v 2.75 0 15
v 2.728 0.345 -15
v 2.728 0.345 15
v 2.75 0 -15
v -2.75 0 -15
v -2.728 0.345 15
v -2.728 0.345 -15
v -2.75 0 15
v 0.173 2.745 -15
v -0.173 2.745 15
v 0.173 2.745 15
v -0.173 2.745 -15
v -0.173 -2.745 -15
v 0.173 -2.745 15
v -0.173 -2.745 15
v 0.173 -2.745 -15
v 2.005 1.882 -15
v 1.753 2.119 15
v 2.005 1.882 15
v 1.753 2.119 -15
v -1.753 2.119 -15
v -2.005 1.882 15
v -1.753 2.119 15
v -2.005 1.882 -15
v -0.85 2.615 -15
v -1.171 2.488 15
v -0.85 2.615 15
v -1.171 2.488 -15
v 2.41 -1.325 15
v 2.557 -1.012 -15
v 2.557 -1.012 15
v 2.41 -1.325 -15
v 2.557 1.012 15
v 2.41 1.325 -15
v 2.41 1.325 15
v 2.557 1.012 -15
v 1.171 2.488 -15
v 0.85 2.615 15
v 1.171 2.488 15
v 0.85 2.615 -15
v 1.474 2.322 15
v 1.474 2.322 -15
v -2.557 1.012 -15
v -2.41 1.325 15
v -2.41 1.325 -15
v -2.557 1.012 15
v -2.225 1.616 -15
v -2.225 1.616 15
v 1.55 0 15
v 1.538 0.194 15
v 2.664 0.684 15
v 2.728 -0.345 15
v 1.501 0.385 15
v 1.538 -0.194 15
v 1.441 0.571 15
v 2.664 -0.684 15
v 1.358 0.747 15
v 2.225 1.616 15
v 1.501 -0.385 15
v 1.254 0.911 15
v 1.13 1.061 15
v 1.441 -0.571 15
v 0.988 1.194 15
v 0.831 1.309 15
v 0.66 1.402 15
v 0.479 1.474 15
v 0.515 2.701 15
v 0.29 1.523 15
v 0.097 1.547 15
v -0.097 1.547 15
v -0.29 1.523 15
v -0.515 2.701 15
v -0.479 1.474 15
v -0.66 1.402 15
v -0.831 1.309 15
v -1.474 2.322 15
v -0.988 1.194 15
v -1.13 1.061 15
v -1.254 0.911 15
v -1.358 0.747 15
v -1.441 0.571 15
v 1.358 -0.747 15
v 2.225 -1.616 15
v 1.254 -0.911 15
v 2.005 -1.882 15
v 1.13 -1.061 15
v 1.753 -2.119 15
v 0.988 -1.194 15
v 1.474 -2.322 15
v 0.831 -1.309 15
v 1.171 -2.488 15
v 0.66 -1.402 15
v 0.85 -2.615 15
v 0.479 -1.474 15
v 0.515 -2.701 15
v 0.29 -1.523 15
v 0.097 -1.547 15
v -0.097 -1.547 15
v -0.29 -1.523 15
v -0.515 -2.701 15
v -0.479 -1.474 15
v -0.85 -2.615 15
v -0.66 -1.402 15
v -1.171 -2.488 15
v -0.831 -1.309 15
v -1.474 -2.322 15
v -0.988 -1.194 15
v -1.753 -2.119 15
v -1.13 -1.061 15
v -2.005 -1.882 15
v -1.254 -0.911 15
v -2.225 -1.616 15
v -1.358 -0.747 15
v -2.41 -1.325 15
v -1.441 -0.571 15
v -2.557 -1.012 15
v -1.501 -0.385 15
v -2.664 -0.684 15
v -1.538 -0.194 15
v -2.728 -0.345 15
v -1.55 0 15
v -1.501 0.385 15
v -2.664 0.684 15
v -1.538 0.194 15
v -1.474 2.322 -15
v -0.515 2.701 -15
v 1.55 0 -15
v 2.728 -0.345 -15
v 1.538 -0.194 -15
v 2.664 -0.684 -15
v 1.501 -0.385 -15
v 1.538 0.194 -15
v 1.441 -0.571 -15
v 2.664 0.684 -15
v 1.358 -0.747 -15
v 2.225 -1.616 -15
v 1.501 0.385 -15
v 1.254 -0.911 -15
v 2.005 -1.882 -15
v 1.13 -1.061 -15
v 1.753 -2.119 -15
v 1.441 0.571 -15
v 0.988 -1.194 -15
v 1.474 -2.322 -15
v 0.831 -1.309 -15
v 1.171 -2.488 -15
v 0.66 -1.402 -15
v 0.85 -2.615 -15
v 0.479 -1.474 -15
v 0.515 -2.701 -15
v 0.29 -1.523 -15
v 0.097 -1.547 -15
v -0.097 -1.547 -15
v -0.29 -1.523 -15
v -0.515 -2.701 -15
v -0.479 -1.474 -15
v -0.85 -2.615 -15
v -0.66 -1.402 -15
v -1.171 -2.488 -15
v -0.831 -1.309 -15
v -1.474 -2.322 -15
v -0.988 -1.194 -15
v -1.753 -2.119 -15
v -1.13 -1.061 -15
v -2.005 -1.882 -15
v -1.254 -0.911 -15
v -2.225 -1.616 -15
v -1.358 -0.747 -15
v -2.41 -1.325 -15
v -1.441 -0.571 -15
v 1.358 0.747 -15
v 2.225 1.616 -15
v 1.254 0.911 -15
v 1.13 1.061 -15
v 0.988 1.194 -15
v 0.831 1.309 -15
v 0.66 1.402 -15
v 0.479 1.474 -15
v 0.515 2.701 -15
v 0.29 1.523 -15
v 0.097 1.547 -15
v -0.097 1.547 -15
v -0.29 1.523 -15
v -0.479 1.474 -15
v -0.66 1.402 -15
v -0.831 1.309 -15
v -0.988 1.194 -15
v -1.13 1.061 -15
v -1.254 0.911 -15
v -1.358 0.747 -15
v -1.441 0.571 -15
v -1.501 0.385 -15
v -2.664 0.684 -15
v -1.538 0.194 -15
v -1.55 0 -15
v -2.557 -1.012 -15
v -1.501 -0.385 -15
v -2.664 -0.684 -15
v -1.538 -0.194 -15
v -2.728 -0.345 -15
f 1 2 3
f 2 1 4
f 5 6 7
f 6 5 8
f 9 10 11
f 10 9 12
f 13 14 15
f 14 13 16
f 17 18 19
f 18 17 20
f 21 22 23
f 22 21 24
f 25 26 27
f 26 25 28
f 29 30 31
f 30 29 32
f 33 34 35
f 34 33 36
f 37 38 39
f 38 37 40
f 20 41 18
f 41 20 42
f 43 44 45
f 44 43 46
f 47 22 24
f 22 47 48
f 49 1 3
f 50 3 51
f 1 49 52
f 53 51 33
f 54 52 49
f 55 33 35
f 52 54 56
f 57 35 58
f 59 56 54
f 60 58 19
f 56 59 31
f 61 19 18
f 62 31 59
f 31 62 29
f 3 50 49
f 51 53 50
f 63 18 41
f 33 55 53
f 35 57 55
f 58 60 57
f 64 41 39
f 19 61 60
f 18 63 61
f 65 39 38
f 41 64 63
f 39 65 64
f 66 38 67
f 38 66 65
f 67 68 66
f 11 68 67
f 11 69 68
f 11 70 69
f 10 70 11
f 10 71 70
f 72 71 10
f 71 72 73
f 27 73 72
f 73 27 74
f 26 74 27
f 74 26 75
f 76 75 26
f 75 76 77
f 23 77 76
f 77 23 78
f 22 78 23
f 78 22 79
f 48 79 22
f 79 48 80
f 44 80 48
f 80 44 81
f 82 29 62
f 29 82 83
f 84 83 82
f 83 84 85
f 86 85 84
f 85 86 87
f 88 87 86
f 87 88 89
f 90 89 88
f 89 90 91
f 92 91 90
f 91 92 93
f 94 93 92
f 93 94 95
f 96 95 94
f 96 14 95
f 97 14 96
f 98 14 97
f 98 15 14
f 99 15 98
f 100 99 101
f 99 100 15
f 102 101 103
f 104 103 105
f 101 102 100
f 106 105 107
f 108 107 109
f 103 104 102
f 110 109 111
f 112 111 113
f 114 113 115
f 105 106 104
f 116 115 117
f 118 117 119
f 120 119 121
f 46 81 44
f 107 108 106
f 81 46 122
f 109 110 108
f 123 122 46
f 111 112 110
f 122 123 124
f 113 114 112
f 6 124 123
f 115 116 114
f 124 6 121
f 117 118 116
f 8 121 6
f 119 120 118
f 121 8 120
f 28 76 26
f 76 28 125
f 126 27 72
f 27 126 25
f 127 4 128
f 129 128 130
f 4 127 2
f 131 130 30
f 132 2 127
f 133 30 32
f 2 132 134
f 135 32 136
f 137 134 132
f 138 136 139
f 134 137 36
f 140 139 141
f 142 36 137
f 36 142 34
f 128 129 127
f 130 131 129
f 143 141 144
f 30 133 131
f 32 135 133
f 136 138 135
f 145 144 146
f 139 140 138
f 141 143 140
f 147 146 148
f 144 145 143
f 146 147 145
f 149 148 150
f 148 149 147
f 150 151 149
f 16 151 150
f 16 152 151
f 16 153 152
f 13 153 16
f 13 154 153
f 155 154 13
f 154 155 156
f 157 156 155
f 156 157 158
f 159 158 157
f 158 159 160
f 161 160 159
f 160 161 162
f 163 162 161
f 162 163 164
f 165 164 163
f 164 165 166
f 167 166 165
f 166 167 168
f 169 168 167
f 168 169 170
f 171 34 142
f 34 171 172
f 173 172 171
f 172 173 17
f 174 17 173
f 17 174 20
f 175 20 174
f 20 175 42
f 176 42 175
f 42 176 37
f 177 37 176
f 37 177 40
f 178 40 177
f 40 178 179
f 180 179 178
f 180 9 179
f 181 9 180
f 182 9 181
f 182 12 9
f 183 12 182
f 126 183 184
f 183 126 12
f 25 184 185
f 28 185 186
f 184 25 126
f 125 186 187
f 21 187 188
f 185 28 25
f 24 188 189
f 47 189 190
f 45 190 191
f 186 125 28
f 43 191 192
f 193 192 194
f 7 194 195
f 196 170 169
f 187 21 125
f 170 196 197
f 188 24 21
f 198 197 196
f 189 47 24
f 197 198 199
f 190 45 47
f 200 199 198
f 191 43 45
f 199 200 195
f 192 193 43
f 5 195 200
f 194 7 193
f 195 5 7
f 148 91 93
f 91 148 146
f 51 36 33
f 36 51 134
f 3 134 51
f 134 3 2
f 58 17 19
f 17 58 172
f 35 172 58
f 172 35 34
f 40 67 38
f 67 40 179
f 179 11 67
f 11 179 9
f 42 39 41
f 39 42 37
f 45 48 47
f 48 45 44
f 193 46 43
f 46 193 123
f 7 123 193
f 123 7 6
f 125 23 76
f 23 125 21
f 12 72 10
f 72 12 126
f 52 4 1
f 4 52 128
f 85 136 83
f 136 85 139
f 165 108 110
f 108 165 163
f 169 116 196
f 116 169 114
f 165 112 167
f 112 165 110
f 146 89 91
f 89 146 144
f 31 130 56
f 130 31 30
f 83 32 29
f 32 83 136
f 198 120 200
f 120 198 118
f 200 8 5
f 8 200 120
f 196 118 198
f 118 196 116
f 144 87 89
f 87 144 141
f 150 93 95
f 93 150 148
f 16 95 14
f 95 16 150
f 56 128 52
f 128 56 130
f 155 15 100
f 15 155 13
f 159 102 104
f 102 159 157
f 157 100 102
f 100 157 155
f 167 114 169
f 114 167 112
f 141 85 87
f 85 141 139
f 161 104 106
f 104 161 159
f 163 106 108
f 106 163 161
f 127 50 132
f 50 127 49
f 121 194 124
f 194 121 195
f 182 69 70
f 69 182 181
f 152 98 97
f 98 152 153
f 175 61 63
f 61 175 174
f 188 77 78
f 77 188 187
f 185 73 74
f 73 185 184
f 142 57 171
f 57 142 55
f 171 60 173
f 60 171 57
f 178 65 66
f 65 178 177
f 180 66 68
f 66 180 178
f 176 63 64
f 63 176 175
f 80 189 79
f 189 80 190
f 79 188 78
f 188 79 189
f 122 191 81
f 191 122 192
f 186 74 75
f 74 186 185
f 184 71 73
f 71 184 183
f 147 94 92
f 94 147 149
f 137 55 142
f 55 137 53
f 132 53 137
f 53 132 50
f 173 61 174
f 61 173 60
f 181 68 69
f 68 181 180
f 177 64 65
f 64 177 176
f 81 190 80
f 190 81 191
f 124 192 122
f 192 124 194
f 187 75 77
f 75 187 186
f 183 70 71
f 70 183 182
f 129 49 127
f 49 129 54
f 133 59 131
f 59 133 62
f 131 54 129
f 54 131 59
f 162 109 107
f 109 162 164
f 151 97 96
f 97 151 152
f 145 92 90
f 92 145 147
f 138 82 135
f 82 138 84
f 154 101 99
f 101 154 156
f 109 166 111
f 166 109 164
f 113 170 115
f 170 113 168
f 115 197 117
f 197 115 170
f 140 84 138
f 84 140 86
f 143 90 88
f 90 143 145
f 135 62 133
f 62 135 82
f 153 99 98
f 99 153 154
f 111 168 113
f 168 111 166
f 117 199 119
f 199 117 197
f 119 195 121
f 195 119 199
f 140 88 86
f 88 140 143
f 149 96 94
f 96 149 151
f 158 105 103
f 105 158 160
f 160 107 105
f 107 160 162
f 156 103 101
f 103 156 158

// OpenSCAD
$fn = 50;


difference() {
	union() {
		translate(v = [0, 0, -15.0000000000]) {
			cylinder(h = 30, r = 2.7500000000);
		}
	}
	union() {
		translate(v = [0, 0, -100.0000000000]) {
			cylinder(h = 200, r = 1.5500000000);
		}
	}
}
